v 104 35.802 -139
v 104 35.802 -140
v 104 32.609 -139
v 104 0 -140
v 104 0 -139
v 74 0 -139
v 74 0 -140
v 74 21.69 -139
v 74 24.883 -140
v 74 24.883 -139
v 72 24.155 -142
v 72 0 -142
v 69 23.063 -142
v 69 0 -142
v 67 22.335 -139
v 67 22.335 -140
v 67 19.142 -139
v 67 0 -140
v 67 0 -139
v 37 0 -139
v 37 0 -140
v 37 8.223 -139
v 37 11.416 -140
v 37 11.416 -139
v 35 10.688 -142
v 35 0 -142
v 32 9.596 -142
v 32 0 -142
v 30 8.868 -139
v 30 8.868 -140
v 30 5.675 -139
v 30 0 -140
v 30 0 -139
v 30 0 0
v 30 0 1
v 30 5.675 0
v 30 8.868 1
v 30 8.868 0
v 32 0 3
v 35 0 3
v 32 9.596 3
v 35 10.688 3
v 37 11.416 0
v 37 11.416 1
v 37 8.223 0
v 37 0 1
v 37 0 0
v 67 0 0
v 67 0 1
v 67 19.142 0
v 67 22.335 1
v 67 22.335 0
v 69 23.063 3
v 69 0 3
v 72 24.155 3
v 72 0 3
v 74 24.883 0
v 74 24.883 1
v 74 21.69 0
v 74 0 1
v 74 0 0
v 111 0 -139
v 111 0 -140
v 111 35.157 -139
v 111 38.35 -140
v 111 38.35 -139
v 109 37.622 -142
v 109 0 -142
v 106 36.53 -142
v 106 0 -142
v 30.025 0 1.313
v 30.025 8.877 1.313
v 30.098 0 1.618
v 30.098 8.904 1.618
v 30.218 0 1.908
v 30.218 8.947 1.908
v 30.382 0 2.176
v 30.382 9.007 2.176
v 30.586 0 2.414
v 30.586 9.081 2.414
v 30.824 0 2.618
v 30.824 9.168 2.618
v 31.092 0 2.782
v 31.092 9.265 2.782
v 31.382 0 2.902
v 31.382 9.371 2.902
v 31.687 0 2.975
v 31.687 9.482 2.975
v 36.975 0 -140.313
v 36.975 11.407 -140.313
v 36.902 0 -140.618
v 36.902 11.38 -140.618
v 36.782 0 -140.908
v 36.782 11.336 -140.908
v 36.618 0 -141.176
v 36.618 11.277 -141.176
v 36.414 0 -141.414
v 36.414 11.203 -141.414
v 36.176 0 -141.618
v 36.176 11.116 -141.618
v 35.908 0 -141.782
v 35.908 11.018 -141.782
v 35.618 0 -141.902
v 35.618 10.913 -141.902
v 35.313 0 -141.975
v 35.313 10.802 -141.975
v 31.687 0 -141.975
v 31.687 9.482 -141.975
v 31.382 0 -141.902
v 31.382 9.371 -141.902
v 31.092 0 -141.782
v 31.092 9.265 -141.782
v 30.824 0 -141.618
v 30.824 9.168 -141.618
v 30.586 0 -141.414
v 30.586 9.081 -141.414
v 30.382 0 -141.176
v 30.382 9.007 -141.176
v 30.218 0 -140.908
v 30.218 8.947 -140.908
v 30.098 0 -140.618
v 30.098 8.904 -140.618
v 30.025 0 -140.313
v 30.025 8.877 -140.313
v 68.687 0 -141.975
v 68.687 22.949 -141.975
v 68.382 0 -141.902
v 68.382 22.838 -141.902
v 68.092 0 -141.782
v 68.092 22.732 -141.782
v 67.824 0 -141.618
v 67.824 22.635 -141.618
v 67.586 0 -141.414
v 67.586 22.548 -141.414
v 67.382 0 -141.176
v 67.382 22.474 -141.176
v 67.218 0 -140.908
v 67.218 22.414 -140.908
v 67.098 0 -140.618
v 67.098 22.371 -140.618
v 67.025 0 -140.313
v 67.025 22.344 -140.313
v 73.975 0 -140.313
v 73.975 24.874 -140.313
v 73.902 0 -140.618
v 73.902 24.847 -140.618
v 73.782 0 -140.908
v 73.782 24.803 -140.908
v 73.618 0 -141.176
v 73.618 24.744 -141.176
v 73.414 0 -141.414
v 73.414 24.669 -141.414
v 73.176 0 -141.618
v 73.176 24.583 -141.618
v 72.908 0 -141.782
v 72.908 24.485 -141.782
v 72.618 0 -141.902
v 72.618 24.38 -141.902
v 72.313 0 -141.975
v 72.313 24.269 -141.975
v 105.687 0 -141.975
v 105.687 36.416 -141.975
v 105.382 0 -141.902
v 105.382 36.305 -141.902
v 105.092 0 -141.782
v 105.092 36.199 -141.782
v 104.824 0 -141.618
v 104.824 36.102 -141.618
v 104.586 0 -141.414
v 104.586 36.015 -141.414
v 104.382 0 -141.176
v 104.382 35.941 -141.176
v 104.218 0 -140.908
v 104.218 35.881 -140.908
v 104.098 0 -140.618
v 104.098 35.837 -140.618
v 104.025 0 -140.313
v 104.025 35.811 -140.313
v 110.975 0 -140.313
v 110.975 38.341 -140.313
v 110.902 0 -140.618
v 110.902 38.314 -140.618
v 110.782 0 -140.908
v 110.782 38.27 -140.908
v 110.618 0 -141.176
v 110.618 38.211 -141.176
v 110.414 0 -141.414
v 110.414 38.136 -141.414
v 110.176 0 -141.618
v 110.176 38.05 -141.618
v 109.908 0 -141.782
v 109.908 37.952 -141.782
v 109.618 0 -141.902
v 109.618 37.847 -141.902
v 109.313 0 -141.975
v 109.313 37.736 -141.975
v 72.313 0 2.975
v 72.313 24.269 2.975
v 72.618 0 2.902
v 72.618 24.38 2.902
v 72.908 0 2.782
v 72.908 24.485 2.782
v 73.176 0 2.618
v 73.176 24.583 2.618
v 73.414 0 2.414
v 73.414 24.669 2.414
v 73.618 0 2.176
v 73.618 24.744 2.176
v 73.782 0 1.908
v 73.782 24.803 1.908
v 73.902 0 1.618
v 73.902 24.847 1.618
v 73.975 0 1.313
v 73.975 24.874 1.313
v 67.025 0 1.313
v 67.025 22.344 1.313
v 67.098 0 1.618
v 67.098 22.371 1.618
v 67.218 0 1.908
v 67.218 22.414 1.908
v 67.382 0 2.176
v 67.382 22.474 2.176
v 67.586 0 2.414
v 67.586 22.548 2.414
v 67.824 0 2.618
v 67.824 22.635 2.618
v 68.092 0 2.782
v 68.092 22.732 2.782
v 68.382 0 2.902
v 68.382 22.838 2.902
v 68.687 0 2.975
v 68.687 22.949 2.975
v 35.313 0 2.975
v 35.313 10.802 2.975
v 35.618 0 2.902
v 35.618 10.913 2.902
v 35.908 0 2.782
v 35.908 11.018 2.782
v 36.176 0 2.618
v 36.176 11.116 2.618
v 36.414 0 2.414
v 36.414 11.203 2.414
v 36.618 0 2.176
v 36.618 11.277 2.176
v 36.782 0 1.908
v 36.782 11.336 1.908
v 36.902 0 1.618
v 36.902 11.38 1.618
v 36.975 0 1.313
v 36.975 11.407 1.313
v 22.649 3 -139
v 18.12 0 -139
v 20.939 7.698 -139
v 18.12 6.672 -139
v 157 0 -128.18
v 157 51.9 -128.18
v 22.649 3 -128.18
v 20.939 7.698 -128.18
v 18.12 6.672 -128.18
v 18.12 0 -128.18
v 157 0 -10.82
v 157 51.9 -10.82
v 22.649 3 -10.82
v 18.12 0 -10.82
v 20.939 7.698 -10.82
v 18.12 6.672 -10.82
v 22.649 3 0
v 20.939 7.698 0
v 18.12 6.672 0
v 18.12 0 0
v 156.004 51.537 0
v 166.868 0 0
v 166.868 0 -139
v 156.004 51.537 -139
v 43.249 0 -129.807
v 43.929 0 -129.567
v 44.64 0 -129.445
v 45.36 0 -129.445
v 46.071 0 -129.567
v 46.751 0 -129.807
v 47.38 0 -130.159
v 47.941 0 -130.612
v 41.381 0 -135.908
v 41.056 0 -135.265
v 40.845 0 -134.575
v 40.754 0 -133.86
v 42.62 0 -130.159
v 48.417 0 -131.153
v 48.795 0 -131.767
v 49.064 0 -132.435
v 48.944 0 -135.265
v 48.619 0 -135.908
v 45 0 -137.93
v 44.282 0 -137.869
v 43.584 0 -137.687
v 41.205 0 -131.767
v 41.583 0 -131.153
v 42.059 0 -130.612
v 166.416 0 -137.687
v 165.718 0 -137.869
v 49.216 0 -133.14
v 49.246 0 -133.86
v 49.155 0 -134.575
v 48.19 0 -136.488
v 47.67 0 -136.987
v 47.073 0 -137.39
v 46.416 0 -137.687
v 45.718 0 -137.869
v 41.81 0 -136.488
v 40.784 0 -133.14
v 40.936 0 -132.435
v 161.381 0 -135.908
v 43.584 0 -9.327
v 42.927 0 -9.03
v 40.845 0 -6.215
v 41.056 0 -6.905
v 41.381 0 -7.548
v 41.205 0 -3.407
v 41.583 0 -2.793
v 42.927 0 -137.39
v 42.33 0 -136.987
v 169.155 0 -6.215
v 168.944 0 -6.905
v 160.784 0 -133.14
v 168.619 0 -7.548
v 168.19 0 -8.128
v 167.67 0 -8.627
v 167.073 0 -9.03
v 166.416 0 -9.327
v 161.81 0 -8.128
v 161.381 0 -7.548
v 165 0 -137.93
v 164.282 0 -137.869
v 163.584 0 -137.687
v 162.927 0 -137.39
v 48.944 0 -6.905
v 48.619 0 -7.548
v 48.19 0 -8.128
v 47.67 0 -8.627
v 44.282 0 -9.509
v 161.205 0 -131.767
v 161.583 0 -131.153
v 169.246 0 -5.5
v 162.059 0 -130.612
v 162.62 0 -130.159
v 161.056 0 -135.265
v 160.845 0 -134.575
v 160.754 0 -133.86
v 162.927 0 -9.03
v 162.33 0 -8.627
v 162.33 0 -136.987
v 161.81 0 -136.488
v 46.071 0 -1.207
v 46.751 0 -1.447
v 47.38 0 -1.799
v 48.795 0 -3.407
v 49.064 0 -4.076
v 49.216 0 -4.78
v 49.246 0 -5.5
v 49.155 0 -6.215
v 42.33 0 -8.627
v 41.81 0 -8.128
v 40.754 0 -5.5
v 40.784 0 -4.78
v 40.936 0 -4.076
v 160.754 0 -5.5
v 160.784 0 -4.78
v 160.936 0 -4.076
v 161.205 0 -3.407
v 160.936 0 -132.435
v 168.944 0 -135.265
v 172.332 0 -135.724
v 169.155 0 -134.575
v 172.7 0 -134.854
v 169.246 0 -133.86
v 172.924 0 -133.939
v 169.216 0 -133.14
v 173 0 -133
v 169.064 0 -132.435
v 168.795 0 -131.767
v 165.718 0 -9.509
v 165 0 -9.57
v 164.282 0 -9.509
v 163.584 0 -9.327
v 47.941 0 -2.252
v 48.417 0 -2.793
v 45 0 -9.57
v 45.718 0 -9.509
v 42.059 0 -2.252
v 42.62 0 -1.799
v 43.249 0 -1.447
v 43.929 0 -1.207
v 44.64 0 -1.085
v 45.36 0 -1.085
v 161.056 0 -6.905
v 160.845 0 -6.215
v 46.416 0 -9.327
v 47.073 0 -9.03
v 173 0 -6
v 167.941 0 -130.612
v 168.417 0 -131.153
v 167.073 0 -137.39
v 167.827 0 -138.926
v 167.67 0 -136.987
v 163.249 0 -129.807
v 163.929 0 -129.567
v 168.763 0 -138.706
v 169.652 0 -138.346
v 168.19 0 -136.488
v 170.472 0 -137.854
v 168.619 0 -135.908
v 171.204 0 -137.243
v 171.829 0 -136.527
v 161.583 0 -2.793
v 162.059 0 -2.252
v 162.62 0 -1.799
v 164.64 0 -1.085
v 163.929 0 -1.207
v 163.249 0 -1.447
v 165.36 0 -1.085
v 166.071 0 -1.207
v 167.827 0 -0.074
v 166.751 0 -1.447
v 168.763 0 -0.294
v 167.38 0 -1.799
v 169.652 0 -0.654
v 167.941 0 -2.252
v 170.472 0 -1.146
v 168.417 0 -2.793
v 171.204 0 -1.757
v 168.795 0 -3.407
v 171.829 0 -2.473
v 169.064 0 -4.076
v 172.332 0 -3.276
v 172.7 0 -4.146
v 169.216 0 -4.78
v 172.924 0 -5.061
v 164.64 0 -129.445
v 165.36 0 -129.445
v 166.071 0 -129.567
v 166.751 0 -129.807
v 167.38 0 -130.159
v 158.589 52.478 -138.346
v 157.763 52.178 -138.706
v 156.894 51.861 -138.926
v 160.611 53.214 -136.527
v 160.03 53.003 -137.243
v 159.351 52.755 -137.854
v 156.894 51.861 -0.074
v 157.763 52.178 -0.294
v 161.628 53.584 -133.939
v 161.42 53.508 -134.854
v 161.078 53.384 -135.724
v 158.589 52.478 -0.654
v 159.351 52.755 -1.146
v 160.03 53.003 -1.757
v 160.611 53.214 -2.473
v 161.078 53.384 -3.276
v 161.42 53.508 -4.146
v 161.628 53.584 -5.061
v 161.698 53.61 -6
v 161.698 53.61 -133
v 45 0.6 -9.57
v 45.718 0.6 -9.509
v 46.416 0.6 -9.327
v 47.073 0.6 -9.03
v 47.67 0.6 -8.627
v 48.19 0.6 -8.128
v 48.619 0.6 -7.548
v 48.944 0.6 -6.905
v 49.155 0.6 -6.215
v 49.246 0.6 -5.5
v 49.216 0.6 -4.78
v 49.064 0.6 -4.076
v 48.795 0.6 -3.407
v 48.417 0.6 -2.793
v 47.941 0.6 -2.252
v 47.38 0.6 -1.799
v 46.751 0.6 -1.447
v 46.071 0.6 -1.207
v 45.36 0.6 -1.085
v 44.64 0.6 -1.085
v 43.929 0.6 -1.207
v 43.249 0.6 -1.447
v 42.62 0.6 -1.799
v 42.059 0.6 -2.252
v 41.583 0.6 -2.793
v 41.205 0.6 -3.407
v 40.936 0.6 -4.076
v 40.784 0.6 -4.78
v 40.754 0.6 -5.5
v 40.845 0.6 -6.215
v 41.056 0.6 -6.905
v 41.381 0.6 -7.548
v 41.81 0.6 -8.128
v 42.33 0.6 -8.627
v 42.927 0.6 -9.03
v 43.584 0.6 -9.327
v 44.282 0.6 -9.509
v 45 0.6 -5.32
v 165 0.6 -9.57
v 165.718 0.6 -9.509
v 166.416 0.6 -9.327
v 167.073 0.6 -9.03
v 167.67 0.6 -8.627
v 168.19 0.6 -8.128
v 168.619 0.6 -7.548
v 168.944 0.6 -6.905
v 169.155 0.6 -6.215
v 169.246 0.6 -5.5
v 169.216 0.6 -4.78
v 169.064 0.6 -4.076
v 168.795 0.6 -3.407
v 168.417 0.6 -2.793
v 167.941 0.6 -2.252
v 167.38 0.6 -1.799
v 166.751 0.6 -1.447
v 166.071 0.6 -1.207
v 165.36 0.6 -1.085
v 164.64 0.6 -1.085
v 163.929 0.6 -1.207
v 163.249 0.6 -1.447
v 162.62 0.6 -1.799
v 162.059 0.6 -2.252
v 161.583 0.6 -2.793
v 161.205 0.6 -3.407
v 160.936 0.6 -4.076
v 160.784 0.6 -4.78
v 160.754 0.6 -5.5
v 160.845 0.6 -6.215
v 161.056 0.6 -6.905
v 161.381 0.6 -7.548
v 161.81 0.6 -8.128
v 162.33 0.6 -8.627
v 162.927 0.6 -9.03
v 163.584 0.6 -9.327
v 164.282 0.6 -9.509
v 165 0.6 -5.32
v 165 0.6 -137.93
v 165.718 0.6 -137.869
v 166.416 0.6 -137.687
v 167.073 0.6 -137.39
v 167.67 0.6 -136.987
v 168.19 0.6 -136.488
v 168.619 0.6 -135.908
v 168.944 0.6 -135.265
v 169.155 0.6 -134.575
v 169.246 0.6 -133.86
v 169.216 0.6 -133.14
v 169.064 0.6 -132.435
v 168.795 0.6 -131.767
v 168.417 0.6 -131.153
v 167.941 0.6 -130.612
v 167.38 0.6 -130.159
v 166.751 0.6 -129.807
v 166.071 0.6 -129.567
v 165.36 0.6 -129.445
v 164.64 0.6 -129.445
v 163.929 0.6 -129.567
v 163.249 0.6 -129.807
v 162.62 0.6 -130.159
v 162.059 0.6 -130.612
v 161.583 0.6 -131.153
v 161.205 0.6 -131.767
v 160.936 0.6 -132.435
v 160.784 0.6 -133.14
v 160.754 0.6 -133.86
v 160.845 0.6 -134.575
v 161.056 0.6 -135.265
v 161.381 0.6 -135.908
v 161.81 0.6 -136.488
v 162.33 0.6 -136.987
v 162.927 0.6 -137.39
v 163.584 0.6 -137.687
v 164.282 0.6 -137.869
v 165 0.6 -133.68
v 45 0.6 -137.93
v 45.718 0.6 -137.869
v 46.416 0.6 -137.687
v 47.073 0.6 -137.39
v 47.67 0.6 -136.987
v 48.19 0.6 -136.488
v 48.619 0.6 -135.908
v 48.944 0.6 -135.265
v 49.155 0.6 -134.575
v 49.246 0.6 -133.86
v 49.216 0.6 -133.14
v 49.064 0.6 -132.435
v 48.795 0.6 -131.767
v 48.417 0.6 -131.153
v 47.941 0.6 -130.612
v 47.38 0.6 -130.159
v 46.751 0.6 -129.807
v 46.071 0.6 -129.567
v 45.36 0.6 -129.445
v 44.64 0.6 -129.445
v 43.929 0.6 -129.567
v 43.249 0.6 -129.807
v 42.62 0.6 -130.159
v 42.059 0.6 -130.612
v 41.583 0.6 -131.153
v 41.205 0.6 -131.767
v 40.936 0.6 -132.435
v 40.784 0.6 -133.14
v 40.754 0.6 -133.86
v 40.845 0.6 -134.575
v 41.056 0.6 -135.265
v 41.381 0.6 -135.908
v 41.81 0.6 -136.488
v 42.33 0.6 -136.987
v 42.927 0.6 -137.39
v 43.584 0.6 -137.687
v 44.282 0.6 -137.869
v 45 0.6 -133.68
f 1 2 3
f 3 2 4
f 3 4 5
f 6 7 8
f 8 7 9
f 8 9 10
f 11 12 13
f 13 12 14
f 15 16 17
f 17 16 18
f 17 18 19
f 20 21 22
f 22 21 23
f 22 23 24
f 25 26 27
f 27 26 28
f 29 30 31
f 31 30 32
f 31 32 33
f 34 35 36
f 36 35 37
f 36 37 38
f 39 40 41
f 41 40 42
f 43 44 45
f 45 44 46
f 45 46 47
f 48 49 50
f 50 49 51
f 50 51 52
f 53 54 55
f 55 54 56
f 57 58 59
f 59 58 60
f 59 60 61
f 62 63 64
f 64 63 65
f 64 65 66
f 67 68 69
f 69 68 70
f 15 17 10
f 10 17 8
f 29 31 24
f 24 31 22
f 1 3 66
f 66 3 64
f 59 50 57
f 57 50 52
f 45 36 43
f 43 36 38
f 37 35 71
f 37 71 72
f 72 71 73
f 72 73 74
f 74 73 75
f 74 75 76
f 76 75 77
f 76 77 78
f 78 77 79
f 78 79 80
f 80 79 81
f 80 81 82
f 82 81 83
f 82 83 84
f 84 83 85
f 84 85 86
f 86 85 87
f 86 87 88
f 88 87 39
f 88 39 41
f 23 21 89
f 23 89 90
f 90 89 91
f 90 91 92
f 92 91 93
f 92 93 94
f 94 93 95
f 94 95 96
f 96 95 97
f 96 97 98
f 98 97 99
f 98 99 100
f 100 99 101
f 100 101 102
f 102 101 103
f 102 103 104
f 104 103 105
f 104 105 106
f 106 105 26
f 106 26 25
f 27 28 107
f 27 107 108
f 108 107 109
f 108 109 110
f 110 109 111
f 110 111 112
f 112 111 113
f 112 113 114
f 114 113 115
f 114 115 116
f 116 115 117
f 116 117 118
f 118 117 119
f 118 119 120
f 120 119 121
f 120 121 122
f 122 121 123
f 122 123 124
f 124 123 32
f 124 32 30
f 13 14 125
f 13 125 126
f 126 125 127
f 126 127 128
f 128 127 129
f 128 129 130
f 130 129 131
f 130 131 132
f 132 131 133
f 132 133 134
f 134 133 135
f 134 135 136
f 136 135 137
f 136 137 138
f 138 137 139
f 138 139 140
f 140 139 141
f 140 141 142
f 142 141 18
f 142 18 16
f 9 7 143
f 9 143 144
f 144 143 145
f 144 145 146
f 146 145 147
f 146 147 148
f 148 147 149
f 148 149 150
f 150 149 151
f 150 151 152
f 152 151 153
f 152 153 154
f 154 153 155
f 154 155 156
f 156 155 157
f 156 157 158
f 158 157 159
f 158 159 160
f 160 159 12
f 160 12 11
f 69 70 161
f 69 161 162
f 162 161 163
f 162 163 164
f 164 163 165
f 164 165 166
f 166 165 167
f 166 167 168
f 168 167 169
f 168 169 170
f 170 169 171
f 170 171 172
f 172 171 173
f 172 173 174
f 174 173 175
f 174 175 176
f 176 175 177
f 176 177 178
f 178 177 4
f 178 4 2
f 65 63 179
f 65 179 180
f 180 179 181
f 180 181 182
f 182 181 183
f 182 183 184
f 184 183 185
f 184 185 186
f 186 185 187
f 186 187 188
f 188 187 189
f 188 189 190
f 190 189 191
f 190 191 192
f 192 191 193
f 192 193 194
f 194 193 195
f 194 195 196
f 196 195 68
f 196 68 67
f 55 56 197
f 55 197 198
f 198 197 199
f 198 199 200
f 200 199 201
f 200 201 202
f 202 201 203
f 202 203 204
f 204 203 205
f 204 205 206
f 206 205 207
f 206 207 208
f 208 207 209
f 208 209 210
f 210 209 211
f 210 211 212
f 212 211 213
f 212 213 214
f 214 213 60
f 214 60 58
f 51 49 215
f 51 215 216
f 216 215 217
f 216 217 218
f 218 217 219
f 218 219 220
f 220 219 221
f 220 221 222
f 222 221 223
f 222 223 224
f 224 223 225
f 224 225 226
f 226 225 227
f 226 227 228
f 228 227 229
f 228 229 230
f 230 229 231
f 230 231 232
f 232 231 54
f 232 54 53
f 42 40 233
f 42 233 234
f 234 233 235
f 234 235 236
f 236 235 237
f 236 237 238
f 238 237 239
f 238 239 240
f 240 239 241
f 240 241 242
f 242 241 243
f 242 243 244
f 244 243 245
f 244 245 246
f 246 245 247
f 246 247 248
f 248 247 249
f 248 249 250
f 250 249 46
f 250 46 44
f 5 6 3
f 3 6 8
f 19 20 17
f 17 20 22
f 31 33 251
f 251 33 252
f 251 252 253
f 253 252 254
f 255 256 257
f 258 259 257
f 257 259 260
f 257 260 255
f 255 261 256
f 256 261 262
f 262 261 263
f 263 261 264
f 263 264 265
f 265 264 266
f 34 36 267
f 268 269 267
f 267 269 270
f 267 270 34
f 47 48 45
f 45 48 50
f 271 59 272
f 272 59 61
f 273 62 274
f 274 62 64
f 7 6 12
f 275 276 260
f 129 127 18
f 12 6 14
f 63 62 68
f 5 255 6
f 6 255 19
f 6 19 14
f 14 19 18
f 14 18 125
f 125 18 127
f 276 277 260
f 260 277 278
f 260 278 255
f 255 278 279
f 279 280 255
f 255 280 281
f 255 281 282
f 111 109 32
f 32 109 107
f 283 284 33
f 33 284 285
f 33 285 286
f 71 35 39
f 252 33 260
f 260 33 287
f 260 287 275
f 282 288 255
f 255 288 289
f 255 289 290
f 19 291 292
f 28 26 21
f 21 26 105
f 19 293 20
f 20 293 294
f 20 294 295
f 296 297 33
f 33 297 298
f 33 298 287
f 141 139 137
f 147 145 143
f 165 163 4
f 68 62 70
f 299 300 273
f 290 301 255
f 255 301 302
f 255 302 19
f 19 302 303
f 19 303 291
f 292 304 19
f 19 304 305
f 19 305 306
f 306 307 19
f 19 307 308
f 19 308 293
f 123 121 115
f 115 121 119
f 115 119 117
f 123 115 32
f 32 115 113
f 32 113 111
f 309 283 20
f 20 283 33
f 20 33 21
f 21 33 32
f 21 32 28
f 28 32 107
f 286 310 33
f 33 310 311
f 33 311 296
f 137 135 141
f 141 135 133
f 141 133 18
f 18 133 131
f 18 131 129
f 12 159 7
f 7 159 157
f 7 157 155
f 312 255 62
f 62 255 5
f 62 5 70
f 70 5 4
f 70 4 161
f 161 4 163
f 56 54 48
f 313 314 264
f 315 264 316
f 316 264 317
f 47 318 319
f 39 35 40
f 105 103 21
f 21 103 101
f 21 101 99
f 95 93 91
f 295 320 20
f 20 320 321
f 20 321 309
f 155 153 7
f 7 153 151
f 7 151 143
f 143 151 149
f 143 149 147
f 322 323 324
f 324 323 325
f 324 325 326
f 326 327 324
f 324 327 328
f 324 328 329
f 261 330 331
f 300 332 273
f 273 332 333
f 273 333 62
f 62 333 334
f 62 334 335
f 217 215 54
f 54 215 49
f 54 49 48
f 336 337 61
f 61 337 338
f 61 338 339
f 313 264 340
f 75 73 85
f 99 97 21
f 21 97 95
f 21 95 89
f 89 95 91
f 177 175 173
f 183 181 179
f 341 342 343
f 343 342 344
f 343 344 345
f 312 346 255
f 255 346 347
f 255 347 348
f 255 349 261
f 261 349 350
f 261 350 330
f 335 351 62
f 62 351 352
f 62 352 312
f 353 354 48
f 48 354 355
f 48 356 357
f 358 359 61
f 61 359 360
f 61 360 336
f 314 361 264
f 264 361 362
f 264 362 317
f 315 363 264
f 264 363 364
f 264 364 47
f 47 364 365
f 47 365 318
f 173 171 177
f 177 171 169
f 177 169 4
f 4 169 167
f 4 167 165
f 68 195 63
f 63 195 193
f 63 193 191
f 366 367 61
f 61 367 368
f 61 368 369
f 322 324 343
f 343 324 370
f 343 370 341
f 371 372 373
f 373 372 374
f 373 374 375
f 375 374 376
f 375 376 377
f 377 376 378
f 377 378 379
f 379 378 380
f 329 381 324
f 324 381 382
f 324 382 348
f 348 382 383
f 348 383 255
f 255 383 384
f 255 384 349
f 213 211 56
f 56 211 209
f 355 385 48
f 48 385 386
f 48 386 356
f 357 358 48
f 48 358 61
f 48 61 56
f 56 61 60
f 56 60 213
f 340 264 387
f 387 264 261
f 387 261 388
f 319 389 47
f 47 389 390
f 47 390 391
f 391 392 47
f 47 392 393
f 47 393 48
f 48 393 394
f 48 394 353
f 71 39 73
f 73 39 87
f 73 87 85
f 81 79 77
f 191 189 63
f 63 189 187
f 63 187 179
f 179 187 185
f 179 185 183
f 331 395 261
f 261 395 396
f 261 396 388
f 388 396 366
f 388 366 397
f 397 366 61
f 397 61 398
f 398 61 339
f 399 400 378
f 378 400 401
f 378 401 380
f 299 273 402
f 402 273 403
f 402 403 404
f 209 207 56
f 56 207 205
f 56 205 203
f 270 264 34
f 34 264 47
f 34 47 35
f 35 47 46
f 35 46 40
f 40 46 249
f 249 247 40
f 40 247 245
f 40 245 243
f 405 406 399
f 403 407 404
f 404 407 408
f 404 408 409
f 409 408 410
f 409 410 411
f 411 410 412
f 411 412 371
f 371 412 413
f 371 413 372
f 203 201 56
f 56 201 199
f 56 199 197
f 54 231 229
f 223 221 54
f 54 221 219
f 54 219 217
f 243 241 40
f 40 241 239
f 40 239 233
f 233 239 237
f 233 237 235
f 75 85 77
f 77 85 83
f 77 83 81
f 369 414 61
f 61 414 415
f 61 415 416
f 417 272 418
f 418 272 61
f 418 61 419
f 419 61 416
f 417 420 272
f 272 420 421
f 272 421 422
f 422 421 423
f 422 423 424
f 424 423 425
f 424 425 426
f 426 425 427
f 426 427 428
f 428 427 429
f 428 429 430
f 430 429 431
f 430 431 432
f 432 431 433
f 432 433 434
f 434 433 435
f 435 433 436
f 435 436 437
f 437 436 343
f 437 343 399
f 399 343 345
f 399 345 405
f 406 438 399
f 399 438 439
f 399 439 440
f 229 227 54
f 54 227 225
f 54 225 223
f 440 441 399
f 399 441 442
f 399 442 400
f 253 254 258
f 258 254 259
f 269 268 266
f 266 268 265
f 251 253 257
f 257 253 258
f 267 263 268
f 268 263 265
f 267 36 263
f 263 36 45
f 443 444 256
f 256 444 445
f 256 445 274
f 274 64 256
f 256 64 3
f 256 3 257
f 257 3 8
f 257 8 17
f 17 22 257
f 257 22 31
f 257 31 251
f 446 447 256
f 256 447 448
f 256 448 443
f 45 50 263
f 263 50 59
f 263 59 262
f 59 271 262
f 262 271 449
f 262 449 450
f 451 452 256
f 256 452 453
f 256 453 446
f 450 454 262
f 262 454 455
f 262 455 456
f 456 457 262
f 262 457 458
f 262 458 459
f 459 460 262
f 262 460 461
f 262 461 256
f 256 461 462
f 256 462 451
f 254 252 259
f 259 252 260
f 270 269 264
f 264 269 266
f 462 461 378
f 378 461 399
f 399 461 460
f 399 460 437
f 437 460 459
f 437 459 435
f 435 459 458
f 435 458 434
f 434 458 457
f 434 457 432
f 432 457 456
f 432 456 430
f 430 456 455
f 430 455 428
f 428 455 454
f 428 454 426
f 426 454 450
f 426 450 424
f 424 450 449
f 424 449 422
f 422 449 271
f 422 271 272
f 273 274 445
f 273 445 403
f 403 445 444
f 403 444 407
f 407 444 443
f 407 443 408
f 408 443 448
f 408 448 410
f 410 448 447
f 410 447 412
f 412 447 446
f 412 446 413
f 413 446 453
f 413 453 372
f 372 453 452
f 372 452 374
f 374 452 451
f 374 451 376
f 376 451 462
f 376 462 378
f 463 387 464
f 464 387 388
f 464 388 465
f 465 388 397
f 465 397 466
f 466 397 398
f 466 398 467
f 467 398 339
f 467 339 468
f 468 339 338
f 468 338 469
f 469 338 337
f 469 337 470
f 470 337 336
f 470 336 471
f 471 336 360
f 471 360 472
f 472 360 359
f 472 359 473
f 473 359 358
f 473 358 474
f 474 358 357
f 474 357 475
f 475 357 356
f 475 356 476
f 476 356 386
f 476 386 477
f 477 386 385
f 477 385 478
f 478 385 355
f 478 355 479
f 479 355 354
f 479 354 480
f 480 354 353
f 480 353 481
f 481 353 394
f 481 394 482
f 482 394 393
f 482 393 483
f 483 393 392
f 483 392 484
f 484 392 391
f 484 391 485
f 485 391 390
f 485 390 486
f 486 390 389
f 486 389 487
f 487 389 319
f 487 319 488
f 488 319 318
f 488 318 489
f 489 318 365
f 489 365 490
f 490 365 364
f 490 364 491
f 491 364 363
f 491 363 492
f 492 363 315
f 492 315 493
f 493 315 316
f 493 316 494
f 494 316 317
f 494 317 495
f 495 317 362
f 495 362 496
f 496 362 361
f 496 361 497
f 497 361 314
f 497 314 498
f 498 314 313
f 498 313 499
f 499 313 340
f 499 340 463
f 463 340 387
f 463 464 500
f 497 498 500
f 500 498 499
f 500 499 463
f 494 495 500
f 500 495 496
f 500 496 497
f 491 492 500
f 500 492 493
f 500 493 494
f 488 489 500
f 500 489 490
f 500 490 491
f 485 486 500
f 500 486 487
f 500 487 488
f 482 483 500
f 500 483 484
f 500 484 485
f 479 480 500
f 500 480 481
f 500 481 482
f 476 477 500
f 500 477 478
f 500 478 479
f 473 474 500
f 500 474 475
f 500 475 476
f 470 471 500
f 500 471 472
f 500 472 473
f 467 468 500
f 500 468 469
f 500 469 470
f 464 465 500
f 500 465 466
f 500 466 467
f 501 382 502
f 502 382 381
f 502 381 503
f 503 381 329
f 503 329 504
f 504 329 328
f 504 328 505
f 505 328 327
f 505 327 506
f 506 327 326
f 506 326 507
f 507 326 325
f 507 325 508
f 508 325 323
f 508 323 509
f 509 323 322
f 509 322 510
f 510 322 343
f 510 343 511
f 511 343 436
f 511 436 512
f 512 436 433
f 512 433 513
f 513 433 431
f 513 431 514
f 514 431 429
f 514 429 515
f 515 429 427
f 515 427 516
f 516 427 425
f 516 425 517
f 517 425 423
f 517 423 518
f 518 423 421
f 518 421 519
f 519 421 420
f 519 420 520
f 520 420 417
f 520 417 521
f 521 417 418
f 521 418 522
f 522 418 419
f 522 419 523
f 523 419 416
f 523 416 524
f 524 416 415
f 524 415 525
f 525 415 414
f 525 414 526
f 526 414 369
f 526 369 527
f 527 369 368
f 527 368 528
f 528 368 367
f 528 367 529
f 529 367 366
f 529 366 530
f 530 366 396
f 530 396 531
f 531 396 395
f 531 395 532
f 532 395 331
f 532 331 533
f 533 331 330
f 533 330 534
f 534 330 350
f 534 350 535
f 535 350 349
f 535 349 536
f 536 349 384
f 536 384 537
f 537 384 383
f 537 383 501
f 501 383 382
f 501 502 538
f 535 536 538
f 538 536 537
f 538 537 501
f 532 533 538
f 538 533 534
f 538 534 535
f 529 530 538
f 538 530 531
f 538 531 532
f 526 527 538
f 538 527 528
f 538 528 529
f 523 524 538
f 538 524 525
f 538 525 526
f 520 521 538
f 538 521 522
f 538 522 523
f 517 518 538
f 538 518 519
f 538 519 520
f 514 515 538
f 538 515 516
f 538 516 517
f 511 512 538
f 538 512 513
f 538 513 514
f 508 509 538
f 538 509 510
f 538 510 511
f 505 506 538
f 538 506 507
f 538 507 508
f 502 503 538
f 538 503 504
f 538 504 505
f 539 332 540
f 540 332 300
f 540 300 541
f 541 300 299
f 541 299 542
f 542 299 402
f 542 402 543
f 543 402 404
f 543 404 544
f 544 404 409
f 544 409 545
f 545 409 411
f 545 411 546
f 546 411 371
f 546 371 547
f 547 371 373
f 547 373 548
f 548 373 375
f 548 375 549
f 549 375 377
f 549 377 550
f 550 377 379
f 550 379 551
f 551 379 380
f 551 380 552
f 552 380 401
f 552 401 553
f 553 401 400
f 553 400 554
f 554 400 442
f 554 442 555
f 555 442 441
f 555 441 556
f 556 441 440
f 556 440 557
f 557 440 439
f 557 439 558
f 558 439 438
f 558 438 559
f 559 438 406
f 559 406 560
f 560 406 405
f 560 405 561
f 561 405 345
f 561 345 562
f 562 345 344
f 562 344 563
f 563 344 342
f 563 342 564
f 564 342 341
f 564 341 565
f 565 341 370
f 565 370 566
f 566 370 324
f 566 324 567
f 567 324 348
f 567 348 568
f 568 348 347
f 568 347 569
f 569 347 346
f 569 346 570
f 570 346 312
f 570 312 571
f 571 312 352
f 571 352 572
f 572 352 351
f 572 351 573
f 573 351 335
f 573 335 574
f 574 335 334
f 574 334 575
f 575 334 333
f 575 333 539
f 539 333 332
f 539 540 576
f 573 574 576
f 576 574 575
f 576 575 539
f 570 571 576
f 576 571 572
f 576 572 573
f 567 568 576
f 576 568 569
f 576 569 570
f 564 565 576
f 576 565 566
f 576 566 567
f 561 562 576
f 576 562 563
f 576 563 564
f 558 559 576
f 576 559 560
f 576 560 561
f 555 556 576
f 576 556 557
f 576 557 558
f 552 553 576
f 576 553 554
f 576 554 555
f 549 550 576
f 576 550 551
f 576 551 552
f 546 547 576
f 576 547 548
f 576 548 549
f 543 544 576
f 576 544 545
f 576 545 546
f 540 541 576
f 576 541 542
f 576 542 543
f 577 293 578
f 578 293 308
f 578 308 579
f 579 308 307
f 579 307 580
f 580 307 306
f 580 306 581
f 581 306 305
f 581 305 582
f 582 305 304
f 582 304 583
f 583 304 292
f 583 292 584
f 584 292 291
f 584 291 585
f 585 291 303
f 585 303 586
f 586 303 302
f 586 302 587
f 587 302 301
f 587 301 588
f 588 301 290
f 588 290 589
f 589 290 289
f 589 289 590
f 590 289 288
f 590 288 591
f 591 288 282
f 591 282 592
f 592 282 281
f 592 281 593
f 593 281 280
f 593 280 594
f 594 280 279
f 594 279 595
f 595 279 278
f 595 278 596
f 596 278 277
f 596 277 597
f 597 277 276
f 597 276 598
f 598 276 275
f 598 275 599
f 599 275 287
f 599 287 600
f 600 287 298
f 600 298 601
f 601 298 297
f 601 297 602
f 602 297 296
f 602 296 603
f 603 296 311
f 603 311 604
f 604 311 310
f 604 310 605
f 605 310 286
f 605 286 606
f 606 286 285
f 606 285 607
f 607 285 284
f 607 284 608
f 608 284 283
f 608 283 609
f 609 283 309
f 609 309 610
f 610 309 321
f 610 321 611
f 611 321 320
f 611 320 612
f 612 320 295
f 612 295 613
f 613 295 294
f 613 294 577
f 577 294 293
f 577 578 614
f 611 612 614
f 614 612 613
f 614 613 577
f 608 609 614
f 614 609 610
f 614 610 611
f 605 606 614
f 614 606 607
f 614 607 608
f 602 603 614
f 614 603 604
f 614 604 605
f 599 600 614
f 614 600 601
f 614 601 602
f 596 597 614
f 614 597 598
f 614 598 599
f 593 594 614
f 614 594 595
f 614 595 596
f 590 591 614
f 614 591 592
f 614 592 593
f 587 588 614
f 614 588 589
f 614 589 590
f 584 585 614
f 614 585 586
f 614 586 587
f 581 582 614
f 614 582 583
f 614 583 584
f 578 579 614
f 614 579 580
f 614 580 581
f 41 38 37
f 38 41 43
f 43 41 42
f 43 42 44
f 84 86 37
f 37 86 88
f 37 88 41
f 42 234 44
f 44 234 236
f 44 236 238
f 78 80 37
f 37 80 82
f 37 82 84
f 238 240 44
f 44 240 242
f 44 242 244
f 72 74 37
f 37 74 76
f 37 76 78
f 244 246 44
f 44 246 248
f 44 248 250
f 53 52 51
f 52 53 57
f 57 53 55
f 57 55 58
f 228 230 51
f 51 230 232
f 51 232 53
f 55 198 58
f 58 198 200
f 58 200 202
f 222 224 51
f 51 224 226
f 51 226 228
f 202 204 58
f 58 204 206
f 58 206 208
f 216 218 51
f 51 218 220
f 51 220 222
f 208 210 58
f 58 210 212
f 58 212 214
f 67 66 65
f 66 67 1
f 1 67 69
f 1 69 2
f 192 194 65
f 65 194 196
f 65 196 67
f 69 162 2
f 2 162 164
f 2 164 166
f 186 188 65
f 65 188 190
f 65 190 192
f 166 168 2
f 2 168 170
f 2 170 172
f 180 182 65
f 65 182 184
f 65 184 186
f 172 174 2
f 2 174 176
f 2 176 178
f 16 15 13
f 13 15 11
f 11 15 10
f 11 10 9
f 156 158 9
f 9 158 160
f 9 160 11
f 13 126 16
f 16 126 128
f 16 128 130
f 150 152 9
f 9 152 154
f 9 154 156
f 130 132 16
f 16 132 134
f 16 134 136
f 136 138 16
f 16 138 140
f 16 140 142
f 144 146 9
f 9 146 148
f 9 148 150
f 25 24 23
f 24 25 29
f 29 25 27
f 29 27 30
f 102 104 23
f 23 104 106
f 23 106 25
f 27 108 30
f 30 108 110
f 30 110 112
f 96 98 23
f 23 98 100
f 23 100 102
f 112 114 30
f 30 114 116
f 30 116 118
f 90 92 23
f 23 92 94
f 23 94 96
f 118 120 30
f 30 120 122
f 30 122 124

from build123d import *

# Parameters (mm, degrees)
BOSS_EXTRUDE1_DEPTH     = 100
TENT_ANGLE_OUTSIDE_W    = 224.378
TENT_ANGLE_OUTSIDE_H    = 151.378
CUT_EXTRUDE1_DEPTH      = 139
CUT_EXTRUDE3_DEPTH      = 200
FILLET1_R               = 6
FILLET2_R               = 6
FEET_INSET_R            = 4.25
CUT_EXTRUDE4_DEPTH      = 0.6
FILLET3_R               = 2
CUT_EXTRUDE5_DEPTH      = 40
CUT_EXTRUDE5_DEPTH_BACK = 200


with BuildPart() as part:
    # base-outline → Boss-Extrude1 (new body)
    with BuildSketch(Plane(origin=(0, 0, 0), x_dir=(1, 0, 0), z_dir=(0, 1, 0))):
        Polygon((0, 10.82), (0, 0), (30, 0), (30, -3), (37, -3), (37, 0), (67, 0), (67, -3), (74, -3), (74, 0), (111, 0), (173, 0), (173, 139), (111, 139), (111, 142), (104, 142), (104, 139), (74, 139), (74, 142), (67, 142), (67, 139), (37, 139), (37, 142), (30, 142), (30, 139), (0, 139), (0, 128.18), (157, 128.18), (157, 10.82), align=None)
    extrude(amount=BOSS_EXTRUDE1_DEPTH)

    # tent-angle outside → Cut-Extrude1 (cut)
    with BuildSketch(Plane.XY):
        with Locations((86.5, 50)):
            Rectangle(TENT_ANGLE_OUTSIDE_W, TENT_ANGLE_OUTSIDE_H)
        Polygon((173, 57.723222932), (22.649180674, 3), (20.939079958, 7.698463104), (18.120002095, 6.672402674), (18.120002095, 0), (22.649180674, 0), (173, 0), align=None, mode=Mode.SUBTRACT)
    extrude(amount=-CUT_EXTRUDE1_DEPTH, mode=Mode.SUBTRACT)

    # middle-angle → Cut-Extrude3 (cut)
    with BuildSketch(Plane.XY):
        Polygon((161.698463104, 53.6097999), (173, 0), (173, 57.723222932), align=None)
    extrude(amount=-CUT_EXTRUDE3_DEPTH, mode=Mode.SUBTRACT)

    # Fillet1
    fillet1_edges = [part.edges().sort_by_distance(p)[0] for p in [
        (167.349231552, 26.80489995, 0),
    ]]
    fillet(fillet1_edges, radius=FILLET1_R)

    # Fillet2
    fillet2_edges = [part.edges().sort_by_distance(p)[0] for p in [
        (167.349231552, 26.80489995, -139),
    ]]
    fillet(fillet2_edges, radius=FILLET2_R)

    # feet-inset → Cut-Extrude4 (cut)
    with BuildSketch(Plane.XZ):
        with Locations(Location((45, -5.32, 0), (0, 0, 270))):
            Circle(FEET_INSET_R)
        with Locations(Location((165, -5.32, 0), (0, 0, 270))):
            Circle(FEET_INSET_R)
        with Locations(Location((165, -133.68, 0), (0, 0, 270))):
            Circle(FEET_INSET_R)
        with Locations(Location((45, -133.68, 0), (0, 0, 270))):
            Circle(FEET_INSET_R)
    extrude(amount=-CUT_EXTRUDE4_DEPTH, mode=Mode.SUBTRACT)

    # Fillet3
    fillet3_edges = [part.edges().sort_by_distance(p)[0] for p in [
        (104, 50, -142),
        (111, 50, -142),
        (74, 50, 3),
        (67, 50, 3),
        (37, 50, 3),
        (30, 50, 3),
        (30, 50, -142),
        (37, 50, -142),
        (67, 50, -142),
        (74, 50, -142),
    ]]
    fillet(fillet3_edges, radius=FILLET3_R)

    # keyboard-seat → Cut-Extrude5 (cut, two sides: drawn at the far end of the back side and taken through both)
    with BuildSketch(Plane.XY.offset(-CUT_EXTRUDE5_DEPTH_BACK)):
        Polygon((126.470388341, 150.398139841), (160.672402674, 56.428877763), (21.623120244, 5.819077862), (-12.578894088, 99.788339941), align=None)
    extrude(amount=CUT_EXTRUDE5_DEPTH + CUT_EXTRUDE5_DEPTH_BACK, mode=Mode.SUBTRACT)


solid = part.part
